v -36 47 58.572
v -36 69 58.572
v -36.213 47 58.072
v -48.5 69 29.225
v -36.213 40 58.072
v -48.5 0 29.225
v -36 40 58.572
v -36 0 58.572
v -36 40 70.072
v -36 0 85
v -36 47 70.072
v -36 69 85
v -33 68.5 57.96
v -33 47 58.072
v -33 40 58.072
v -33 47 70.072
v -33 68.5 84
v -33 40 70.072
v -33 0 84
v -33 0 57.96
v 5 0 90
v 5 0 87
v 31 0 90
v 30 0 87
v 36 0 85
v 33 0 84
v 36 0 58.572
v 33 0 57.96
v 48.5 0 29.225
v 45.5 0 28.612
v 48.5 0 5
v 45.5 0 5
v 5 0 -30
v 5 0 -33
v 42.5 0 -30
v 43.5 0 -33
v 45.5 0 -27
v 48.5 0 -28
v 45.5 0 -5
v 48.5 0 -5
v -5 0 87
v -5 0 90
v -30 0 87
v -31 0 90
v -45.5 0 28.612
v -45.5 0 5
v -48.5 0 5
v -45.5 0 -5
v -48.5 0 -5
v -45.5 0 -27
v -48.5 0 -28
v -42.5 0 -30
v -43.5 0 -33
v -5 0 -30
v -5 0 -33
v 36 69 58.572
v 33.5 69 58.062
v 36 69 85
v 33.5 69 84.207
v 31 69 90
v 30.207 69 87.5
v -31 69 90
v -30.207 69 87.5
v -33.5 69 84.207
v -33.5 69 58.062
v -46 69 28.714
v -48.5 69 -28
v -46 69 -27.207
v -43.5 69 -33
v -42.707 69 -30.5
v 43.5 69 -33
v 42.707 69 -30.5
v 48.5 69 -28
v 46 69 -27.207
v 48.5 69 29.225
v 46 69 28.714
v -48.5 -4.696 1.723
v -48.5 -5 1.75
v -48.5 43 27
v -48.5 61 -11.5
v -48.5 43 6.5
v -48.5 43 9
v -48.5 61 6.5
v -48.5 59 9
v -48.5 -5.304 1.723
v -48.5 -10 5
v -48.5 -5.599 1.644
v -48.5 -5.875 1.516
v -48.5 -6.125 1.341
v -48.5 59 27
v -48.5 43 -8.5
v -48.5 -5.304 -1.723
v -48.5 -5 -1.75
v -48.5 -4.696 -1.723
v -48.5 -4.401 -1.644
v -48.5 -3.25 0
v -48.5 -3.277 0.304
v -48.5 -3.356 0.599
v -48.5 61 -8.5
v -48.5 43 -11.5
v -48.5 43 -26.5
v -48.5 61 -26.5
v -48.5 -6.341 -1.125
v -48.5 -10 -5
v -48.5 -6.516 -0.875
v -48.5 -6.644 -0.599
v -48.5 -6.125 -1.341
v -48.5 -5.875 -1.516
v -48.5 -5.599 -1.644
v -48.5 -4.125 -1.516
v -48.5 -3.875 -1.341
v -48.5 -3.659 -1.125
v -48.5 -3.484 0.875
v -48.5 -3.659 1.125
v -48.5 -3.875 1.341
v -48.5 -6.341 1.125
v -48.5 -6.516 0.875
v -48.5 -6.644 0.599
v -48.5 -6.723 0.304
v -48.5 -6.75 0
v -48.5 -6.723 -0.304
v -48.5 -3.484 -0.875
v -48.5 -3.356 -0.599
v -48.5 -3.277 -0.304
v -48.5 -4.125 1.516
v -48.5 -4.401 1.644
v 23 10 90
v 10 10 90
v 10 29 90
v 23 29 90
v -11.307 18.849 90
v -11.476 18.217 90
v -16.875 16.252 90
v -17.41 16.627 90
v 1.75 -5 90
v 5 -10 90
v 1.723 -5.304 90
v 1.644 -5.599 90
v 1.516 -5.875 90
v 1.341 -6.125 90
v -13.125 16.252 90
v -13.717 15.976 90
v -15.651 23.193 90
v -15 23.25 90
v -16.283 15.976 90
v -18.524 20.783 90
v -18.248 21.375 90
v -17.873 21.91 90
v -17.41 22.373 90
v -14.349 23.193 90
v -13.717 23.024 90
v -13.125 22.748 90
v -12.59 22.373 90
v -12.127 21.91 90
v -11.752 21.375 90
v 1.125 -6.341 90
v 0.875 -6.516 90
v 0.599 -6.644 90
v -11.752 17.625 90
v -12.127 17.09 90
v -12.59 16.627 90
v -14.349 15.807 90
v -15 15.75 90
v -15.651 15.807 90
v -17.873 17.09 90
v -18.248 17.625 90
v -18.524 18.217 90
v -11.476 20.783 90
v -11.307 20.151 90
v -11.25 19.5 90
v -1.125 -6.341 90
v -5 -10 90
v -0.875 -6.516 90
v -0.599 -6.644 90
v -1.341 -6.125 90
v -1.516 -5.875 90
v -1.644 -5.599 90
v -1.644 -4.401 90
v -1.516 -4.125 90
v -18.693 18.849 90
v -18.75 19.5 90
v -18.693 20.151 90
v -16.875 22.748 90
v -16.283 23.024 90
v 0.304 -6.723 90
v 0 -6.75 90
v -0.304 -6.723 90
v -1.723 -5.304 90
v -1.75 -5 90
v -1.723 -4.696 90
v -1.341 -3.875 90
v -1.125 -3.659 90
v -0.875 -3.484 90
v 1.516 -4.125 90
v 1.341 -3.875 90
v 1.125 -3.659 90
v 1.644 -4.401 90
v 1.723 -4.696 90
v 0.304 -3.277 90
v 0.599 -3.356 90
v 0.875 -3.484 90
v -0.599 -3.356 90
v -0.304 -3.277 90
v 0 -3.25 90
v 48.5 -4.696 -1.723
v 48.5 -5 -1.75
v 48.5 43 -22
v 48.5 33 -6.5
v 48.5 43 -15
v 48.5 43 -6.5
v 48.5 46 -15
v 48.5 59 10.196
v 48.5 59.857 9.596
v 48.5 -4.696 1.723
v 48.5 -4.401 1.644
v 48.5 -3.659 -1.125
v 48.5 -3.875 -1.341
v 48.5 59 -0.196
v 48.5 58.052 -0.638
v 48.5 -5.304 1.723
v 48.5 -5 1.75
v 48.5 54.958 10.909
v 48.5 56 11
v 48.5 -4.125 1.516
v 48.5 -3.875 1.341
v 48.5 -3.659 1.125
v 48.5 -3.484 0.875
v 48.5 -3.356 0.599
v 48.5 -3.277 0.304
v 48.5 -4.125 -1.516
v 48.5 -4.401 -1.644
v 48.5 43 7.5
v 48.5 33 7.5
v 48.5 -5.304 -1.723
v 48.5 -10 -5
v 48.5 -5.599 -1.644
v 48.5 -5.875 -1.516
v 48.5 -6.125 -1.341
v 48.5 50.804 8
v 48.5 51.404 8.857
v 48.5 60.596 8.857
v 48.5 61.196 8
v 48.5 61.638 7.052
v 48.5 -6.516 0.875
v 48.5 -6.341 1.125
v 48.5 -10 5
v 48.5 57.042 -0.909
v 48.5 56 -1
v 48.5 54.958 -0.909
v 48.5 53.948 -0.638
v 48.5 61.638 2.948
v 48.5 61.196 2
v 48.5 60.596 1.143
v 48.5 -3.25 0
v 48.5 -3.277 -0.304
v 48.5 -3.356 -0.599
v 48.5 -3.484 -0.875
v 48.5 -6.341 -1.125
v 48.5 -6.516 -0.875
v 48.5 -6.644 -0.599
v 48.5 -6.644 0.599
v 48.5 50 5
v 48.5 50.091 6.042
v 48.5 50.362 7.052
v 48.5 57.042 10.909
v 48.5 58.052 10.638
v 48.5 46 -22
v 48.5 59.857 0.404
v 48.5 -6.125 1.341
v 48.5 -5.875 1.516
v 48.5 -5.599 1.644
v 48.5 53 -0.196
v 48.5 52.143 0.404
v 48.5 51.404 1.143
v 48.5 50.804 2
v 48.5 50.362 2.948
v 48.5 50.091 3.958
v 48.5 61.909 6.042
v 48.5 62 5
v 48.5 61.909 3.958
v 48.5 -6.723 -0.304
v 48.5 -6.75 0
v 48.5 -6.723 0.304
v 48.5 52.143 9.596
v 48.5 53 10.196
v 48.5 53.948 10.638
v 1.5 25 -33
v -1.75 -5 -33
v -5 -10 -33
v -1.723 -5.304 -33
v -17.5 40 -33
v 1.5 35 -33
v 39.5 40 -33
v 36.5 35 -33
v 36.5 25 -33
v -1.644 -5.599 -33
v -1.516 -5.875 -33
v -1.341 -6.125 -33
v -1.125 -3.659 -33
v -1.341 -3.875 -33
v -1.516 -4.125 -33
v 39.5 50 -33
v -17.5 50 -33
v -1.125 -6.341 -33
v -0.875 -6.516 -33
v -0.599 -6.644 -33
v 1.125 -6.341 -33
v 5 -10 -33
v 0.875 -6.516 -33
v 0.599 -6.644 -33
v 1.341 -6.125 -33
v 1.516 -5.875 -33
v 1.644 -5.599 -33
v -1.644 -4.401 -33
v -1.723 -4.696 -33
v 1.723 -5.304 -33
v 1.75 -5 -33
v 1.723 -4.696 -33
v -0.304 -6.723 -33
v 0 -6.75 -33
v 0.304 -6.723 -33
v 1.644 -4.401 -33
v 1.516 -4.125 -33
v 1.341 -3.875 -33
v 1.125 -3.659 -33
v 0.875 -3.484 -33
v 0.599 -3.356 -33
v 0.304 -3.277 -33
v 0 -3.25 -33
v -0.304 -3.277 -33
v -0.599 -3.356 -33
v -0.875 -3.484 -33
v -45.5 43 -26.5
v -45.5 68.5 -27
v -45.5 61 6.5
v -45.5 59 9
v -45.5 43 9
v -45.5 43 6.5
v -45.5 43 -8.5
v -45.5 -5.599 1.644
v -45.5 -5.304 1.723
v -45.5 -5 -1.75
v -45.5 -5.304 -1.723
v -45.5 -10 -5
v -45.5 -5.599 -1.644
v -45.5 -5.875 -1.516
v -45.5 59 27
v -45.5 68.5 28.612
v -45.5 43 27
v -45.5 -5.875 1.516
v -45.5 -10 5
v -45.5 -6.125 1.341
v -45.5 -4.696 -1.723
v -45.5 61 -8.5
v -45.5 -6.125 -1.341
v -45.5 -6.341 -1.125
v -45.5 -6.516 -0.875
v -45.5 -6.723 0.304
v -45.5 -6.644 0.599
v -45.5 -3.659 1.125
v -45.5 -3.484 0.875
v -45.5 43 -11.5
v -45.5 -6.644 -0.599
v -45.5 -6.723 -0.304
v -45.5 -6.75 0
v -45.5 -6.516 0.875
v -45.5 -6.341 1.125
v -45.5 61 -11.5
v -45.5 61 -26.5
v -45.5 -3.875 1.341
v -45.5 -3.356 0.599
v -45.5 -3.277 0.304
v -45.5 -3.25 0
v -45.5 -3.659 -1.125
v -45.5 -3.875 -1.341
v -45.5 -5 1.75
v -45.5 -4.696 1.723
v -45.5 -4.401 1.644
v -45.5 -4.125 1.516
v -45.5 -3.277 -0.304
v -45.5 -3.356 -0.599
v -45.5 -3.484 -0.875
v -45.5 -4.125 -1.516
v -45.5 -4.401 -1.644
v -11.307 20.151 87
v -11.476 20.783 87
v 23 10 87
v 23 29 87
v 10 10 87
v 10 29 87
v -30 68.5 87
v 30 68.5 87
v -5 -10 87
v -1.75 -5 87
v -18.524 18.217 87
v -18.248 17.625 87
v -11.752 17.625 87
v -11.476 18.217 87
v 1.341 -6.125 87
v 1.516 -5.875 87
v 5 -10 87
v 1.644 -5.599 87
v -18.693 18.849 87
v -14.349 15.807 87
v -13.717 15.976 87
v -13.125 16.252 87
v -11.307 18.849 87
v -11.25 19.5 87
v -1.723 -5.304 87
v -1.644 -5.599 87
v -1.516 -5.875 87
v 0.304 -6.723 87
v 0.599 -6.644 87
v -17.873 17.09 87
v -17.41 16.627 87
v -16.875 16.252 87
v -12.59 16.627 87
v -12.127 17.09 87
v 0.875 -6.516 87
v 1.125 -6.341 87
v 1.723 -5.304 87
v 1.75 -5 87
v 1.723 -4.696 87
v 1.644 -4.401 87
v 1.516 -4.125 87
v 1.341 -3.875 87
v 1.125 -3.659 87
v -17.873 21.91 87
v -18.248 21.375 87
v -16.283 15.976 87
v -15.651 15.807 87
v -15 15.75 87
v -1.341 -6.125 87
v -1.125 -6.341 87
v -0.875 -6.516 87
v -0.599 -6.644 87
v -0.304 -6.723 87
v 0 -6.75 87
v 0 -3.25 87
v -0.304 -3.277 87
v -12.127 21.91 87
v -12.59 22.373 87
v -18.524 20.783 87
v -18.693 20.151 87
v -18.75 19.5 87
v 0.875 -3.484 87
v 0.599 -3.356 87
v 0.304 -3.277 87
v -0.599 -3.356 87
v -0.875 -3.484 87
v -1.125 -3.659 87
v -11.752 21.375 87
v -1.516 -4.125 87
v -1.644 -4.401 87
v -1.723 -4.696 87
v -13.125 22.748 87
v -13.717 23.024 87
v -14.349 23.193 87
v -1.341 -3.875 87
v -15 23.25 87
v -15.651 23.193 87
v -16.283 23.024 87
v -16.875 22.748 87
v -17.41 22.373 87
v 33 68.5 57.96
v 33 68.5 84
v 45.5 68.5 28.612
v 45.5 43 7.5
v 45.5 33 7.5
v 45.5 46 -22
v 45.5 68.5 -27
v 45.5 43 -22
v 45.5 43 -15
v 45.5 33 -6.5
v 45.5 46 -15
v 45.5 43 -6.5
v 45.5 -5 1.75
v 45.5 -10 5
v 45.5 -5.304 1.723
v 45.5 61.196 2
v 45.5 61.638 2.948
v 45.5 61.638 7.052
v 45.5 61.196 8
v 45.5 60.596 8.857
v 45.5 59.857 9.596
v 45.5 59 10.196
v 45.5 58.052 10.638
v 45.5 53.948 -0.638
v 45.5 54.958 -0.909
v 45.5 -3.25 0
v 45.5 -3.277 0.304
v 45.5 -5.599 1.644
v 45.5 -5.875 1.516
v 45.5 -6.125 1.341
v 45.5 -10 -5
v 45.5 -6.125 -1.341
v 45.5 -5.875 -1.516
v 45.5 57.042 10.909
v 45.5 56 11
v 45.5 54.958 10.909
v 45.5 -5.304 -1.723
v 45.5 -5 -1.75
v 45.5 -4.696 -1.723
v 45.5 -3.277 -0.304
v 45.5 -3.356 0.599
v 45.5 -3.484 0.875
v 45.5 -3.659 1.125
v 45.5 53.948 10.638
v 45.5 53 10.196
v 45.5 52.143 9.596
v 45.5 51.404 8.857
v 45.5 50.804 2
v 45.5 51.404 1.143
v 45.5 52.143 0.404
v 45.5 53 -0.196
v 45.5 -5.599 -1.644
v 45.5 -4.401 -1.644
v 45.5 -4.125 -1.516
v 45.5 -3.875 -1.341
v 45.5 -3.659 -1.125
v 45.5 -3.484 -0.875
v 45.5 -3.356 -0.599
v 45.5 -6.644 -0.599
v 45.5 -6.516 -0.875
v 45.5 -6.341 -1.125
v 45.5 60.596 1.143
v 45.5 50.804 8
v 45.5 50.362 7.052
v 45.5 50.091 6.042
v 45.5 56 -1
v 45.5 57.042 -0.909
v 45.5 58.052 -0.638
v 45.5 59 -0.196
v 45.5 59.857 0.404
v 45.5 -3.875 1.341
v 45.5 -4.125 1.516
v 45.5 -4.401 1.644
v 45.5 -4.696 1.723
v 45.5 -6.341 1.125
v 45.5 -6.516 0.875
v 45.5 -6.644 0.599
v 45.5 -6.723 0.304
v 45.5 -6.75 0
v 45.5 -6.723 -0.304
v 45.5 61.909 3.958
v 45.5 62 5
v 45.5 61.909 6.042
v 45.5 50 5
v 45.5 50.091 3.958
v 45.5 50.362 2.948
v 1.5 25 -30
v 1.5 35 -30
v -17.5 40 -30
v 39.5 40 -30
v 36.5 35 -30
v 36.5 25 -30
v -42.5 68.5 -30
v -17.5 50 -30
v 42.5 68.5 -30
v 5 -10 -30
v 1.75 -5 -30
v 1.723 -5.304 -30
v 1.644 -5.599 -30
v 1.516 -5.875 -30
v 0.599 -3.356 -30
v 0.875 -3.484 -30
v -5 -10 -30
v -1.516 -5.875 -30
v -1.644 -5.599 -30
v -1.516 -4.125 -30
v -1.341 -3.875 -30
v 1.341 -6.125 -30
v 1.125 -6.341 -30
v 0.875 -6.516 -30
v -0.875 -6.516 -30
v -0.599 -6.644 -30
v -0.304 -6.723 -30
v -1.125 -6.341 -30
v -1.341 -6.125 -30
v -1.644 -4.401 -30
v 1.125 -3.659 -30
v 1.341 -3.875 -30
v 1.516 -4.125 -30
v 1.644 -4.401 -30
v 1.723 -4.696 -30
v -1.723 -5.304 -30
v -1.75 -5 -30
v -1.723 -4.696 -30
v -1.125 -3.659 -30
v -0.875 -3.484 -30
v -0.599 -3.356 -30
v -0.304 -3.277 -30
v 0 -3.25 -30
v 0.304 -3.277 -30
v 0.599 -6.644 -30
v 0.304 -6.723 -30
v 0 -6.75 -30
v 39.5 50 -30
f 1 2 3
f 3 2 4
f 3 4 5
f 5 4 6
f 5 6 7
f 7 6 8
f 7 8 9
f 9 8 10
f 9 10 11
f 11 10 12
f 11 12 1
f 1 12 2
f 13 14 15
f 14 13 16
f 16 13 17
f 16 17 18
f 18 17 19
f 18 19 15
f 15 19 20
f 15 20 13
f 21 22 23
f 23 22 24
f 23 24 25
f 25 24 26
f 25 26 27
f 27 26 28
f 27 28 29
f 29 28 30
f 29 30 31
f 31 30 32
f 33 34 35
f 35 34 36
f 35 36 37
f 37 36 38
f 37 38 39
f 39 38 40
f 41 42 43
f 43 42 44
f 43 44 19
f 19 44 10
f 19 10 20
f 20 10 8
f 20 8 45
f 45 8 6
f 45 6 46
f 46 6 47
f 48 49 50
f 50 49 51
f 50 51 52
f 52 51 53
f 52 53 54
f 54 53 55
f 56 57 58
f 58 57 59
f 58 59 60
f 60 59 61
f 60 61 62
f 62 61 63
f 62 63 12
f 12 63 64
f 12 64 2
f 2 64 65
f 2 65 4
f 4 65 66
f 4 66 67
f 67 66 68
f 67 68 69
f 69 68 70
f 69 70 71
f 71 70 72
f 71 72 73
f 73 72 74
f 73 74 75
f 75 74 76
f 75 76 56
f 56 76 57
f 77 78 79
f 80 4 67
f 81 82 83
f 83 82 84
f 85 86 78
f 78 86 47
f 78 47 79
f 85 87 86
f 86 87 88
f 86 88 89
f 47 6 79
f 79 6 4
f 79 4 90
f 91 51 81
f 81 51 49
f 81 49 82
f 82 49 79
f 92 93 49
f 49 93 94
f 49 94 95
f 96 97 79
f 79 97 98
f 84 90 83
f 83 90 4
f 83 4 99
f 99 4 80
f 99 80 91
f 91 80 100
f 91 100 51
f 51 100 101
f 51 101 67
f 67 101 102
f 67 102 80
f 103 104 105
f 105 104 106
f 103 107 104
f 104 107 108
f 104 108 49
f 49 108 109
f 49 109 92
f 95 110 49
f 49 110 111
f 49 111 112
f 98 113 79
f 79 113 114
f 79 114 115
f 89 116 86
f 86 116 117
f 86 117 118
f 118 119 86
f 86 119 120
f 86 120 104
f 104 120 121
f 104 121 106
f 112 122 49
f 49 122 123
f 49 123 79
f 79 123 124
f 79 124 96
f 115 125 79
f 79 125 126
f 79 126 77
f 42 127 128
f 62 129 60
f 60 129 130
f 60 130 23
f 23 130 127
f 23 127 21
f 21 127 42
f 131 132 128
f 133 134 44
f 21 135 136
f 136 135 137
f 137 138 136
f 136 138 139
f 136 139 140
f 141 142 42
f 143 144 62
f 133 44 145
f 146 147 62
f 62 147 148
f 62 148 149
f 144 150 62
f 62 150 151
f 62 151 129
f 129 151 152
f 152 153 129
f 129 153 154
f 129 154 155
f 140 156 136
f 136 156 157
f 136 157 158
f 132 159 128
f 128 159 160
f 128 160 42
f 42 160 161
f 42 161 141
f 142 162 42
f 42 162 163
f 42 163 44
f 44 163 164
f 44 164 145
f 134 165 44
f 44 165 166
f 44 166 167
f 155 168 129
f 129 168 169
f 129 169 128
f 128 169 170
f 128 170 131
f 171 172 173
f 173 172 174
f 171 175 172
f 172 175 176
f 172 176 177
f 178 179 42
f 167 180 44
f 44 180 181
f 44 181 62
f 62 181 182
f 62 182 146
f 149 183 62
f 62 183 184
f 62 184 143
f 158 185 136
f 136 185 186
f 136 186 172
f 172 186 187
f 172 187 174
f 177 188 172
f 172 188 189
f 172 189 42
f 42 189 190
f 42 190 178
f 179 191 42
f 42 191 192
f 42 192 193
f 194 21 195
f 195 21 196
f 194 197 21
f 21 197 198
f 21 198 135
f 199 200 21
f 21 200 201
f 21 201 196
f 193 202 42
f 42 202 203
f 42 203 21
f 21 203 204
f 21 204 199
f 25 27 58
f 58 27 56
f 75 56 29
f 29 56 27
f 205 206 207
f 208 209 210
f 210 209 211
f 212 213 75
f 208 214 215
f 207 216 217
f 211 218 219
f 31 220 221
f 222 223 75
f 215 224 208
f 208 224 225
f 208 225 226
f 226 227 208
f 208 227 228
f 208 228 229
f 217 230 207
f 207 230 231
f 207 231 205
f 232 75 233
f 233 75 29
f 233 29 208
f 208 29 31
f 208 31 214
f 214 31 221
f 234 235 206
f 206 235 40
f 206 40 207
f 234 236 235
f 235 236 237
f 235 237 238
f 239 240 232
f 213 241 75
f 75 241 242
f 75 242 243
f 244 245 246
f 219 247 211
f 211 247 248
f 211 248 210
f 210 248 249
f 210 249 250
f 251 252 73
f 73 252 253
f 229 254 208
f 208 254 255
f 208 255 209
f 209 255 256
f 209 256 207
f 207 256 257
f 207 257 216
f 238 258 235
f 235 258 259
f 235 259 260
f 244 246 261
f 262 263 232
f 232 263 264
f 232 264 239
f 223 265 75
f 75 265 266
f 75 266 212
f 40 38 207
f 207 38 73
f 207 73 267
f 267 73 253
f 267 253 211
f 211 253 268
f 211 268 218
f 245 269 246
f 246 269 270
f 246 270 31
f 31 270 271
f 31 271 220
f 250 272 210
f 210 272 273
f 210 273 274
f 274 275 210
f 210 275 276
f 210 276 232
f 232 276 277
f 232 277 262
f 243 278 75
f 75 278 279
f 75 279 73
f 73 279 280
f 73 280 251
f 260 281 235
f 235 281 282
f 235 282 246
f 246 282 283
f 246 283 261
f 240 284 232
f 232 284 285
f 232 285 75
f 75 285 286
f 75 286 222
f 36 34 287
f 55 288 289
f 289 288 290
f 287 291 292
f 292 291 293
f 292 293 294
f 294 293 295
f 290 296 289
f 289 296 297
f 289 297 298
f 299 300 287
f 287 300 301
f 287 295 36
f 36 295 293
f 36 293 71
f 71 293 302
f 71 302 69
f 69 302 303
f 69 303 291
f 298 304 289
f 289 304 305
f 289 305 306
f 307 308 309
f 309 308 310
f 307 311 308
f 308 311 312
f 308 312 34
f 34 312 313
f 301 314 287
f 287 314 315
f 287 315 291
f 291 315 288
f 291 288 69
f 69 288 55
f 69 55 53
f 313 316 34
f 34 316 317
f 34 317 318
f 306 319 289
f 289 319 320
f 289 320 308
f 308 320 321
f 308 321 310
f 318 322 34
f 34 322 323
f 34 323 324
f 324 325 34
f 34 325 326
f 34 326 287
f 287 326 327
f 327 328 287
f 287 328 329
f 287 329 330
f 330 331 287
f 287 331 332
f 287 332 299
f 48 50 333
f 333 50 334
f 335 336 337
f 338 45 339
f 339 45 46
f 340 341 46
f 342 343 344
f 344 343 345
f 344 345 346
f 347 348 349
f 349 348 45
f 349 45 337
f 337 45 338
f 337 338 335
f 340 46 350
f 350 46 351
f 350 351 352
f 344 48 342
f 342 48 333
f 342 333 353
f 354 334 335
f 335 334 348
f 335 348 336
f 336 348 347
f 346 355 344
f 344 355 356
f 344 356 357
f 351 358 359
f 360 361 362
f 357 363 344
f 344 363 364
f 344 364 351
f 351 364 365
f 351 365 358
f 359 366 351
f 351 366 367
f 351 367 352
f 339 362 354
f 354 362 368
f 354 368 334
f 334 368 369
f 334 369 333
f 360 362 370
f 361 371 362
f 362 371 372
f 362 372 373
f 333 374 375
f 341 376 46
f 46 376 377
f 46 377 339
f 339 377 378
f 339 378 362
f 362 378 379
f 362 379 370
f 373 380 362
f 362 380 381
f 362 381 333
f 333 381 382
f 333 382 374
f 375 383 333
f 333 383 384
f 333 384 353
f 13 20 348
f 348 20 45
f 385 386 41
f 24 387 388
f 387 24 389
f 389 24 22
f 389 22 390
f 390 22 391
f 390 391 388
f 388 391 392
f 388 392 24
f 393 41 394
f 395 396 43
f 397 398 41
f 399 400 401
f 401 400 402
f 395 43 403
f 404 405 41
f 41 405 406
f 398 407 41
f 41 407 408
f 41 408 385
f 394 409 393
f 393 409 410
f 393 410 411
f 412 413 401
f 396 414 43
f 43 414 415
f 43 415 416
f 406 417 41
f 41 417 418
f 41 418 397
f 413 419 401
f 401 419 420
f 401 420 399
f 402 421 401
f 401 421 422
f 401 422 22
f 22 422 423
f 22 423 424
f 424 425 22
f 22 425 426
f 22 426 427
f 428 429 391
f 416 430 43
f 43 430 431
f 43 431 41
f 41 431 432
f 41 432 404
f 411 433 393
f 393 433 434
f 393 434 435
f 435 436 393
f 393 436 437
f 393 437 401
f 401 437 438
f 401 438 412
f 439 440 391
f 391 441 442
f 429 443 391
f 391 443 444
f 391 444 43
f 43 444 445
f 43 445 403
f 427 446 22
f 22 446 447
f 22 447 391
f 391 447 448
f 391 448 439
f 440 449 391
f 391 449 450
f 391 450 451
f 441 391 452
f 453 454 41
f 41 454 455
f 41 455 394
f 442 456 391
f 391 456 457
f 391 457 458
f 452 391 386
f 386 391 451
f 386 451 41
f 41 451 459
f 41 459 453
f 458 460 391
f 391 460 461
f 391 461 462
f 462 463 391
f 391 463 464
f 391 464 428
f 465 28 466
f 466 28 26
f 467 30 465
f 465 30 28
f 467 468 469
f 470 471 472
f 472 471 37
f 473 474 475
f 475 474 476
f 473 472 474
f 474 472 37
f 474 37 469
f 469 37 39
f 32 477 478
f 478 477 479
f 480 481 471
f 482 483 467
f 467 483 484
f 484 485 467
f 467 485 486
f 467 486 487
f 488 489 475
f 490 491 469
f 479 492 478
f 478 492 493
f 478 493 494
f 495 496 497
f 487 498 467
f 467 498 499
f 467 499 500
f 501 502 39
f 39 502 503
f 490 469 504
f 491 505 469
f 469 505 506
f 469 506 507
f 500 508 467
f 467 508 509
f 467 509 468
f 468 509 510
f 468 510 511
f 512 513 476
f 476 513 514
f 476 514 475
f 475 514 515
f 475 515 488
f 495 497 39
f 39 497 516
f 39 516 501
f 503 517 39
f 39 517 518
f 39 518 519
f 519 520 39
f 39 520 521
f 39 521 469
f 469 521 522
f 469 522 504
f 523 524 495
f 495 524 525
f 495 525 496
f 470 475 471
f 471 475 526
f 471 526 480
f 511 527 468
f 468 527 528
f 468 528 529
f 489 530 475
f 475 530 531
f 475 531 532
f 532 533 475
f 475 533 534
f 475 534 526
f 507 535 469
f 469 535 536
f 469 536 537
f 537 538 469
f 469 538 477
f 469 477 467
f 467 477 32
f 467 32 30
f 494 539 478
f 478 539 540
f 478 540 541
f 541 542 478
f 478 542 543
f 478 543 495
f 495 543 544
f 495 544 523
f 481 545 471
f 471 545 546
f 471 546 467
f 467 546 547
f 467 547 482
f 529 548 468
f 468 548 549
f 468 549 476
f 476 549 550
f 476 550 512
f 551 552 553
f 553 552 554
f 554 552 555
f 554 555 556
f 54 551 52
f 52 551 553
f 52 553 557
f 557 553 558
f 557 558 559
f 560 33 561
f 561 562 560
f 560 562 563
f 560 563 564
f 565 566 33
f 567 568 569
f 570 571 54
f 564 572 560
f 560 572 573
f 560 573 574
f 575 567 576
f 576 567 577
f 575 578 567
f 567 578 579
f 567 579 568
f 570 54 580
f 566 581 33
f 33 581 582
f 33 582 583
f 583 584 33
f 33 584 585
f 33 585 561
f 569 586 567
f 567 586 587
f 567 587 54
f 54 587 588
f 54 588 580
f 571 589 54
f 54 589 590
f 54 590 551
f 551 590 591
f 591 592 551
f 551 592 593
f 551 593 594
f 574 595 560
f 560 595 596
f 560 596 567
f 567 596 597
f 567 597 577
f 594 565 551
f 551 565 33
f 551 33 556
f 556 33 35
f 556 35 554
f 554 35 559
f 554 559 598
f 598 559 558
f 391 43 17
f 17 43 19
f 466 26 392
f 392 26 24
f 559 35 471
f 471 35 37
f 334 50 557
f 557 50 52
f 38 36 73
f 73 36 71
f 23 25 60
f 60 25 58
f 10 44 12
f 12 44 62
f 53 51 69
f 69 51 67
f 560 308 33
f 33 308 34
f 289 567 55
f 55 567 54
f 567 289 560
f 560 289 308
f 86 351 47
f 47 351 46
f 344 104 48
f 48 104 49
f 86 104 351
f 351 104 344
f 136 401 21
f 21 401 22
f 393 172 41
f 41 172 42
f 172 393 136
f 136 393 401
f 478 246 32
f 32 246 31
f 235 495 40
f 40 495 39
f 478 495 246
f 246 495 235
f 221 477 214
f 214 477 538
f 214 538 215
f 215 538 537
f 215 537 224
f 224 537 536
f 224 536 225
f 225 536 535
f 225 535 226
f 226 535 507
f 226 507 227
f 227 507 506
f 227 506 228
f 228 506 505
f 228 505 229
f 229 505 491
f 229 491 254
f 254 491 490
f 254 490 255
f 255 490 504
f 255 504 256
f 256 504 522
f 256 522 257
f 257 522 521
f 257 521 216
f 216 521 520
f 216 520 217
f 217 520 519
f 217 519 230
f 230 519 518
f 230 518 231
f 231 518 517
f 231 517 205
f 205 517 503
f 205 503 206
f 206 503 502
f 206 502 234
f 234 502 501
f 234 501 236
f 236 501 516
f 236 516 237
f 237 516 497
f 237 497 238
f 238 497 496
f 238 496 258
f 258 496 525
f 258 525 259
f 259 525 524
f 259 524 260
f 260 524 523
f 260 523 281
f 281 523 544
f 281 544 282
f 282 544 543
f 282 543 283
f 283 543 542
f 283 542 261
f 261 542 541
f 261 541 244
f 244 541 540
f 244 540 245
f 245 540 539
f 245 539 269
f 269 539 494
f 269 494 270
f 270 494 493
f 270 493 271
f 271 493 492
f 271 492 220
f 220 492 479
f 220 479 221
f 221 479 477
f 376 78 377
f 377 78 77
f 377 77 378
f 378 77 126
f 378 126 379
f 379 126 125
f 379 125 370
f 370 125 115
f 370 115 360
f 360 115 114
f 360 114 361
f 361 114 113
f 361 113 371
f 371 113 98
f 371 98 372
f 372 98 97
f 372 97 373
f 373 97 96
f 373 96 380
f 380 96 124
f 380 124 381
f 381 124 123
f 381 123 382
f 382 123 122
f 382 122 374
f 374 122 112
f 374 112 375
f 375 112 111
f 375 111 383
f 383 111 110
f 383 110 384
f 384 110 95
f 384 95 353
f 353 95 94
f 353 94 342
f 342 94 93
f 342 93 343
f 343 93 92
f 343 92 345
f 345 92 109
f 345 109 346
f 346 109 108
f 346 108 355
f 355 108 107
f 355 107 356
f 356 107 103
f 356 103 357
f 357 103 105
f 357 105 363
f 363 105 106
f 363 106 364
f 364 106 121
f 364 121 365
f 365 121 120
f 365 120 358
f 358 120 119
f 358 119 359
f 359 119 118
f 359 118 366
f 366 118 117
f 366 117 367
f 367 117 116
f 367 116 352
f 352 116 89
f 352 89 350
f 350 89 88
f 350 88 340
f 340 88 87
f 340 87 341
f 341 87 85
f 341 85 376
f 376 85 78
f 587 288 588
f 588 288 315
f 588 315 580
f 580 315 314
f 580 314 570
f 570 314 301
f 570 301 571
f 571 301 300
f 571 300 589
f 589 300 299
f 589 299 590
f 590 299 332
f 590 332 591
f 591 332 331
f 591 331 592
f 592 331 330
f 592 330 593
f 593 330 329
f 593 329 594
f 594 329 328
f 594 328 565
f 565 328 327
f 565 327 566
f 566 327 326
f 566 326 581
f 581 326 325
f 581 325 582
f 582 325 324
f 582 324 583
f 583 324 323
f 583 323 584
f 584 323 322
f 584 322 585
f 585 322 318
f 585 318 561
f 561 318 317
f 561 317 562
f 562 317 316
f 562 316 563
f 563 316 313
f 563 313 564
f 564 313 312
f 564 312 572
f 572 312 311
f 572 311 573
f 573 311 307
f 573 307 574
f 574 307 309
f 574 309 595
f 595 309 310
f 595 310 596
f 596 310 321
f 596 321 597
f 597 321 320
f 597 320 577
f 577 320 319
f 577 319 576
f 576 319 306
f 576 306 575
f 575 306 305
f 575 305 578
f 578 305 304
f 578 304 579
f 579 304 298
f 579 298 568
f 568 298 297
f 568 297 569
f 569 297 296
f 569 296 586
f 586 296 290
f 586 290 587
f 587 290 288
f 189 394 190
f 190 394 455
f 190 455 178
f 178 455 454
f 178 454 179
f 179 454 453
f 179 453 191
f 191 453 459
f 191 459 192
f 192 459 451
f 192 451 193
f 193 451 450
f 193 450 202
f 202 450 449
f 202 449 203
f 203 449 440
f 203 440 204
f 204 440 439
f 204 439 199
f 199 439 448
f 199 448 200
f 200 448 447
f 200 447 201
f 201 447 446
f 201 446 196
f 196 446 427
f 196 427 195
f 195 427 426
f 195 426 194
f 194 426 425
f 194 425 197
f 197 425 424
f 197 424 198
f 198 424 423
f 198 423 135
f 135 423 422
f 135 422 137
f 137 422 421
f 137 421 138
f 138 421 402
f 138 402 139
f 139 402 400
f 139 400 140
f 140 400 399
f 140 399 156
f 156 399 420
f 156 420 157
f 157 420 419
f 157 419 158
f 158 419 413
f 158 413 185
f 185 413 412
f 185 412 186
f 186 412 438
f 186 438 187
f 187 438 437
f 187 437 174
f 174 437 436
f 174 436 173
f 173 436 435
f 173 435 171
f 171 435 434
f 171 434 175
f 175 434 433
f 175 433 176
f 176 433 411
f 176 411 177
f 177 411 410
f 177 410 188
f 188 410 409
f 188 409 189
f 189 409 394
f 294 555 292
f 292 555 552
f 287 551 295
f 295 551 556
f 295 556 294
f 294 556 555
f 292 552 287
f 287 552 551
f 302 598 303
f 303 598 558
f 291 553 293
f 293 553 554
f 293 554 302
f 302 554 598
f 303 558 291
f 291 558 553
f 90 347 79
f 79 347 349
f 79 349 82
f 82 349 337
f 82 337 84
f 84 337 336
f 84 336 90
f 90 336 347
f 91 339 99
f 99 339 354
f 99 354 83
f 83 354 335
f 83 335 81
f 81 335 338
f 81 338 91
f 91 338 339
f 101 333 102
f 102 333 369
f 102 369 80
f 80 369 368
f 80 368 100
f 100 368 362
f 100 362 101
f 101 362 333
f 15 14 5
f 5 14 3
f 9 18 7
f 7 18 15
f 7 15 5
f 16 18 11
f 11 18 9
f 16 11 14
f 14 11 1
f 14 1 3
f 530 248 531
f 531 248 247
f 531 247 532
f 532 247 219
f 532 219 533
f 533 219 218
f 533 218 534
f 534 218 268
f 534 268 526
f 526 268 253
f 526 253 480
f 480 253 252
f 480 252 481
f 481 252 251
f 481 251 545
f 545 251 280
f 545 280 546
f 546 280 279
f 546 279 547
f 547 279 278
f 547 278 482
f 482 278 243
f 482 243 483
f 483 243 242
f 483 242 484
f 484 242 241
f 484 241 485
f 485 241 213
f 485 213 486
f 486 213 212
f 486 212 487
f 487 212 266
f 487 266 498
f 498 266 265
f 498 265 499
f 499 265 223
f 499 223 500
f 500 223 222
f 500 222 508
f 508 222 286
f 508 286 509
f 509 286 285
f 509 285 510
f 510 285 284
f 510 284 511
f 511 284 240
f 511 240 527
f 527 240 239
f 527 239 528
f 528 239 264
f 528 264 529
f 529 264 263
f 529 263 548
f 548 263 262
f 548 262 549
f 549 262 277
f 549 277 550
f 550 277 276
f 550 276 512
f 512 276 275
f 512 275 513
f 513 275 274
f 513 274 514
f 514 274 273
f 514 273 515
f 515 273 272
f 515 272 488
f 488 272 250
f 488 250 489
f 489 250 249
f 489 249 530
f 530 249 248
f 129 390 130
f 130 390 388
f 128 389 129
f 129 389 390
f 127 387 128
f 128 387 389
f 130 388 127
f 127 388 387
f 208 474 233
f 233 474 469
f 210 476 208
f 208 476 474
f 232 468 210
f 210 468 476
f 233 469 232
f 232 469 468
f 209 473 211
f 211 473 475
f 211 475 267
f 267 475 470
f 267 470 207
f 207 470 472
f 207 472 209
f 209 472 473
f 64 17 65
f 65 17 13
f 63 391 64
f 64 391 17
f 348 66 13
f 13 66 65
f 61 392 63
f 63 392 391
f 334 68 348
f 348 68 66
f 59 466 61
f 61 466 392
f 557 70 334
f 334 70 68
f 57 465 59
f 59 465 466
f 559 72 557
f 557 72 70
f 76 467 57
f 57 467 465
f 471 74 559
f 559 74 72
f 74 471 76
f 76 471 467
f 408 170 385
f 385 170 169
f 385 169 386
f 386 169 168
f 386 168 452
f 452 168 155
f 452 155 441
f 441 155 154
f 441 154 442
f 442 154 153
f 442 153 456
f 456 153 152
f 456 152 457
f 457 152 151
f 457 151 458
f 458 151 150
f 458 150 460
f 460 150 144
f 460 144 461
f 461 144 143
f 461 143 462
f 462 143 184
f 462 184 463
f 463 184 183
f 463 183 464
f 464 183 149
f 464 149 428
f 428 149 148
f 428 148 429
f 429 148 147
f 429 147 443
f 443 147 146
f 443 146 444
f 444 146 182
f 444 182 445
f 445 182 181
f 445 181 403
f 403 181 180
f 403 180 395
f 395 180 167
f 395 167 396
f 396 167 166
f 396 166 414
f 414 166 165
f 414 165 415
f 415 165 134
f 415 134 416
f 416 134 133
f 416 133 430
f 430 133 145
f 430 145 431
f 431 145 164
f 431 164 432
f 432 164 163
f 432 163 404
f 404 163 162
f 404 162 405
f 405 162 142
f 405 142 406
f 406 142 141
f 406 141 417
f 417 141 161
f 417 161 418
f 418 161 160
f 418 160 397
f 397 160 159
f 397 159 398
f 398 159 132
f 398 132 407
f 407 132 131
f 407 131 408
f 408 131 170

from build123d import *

# Parameters (mm, degrees)
BOSS_EXTRUDE2_DEPTH            = 69
CHAMFER1_SIZE                  = 3
CHAMFER2_SIZE                  = 5
SKETCH5_W                      = 10
SKETCH5_H                      = 3
SKETCH5_W_2                    = 3
SKETCH5_H_2                    = 10
BOSS_EXTRUDE3_DEPTH            = 10
SKETCH6_R                      = 1.75
CUT_EXTRUDE1_DEPTH             = 150.231363996
SKETCH7_R                      = 1.75
CUT_EXTRUDE2_DEPTH             = 150.13835858
CUT_EXTRUDE3_REACH             = 151.138
SKETCH8_W                      = 57
SKETCH8_H                      = 10
SKETCH8_W_2                    = 35
CUT_EXTRUDE4_REACH             = 151.231
SKETCH10_W                     = 15
SKETCH10_H                     = 18
SKETCH10_W_2                   = 18
SKETCH10_H_2                   = 16
CUT_EXTRUDE5_REACH             = 143.426
SKETCH12_W                     = 12
SKETCH12_H                     = 7
CUT_EXTRUDE5_DIRECTION_2_DEPTH = 142.425775586
CUT_EXTRUDE6_REACH             = 151.231
SKETCH14_R                     = 6
CUT_EXTRUDE7_REACH             = 151.138
SKETCH15_W                     = 13
SKETCH15_H                     = 19
CUT_EXTRUDE8_REACH             = 151.231
SKETCH16_W                     = 14
SKETCH16_H                     = 10
CUT_EXTRUDE9_REACH             = 151.231
SKETCH18_W                     = 7
SKETCH18_H                     = 3
CHAMFER3_SIZE                  = 0.5
CUT_EXTRUDE10_REACH            = 151.138
SKETCH19_R                     = 3.75


with BuildPart() as part:
    # Sketch4 → Boss-Extrude2 (new body)
    with BuildSketch(Plane(origin=(0, 0, 0), x_dir=(1, 0, 0), z_dir=(0, 1, 0))):
        Polygon((-48.5, 33), (48.5, 33), (48.5, -29.22455366), (36, -58.572379747), (36, -90), (-36, -90), (-36, -58.572379747), (-48.5, -29.22455366), align=None)
        Polygon((-45.5, 30), (45.5, 30), (45.5, -28.61227683), (33, -57.960102917), (33, -87), (-33, -87), (-33, -57.960102917), (-45.5, -28.61227683), align=None, mode=Mode.SUBTRACT)
    extrude(amount=BOSS_EXTRUDE2_DEPTH)

    # Chamfer1
    chamfer1_edges = [part.edges().sort_by_distance(p)[0] for p in [
        (-45.5, 34.5, -30),
        (-33, 34.5, 87),
        (33, 34.5, 87),
        (45.5, 34.5, -30),
    ]]
    chamfer(chamfer1_edges, length=CHAMFER1_SIZE)

    # Chamfer2
    chamfer2_edges = [part.edges().sort_by_distance(p)[0] for p in [
        (-48.5, 34.5, -33),
        (48.5, 34.5, -33),
        (36, 34.5, 90),
        (-36, 34.5, 90),
    ]]
    chamfer(chamfer2_edges, length=CHAMFER2_SIZE)

    # Sketch5 → Boss-Extrude3 (add)
    with BuildSketch(Plane(origin=(0, 0, 0), x_dir=(1, 0, 0), z_dir=(0, 1, 0))):
        with Locations((0, 31.5)):
            Rectangle(SKETCH5_W, SKETCH5_H)
        with Locations((-47, 0)):
            Rectangle(SKETCH5_W_2, SKETCH5_H_2)
        with Locations((0, -88.5)):
            Rectangle(SKETCH5_W, SKETCH5_H)
        with Locations((47, 0)):
            Rectangle(SKETCH5_W_2, SKETCH5_H_2)
    extrude(amount=-BOSS_EXTRUDE3_DEPTH)

    # Sketch6 → Cut-Extrude1 (cut, through all)
    with BuildSketch(Plane.ZY.offset(48.5)):
        with Locations((0, -5)):
            Circle(SKETCH6_R)
    extrude(amount=-CUT_EXTRUDE1_DEPTH, mode=Mode.SUBTRACT)

    # Sketch7 → Cut-Extrude2 (cut, through all)
    with BuildSketch(Plane(origin=(0, 0, -33), x_dir=(-1, 0, 0), z_dir=(0, 0, -1))):
        with Locations((0, -5)):
            Circle(SKETCH7_R)
    extrude(amount=-CUT_EXTRUDE2_DEPTH, mode=Mode.SUBTRACT)

    # Sketch8 → Cut-Extrude3 (cut, up to next)
    with BuildSketch(Plane(origin=(0, 0, -33), x_dir=(-1, 0, 0), z_dir=(0, 0, -1)), mode=Mode.PRIVATE) as cut_extrude3_sk1:
        with Locations((-11, 45)):
            Rectangle(SKETCH8_W, SKETCH8_H)
    cut_extrude3_tool1 = extrude(cut_extrude3_sk1.sketch, amount=-CUT_EXTRUDE3_REACH, mode=Mode.PRIVATE) & part.part
    # Sketch8 → Cut-Extrude3 (cut, up to next)
    with BuildSketch(Plane(origin=(0, 0, -33), x_dir=(-1, 0, 0), z_dir=(0, 0, -1)), mode=Mode.PRIVATE) as cut_extrude3_sk2:
        with Locations((-19, 30)):
            Rectangle(SKETCH8_W_2, SKETCH8_H)
    cut_extrude3_tool2 = extrude(cut_extrude3_sk2.sketch, amount=-CUT_EXTRUDE3_REACH, mode=Mode.PRIVATE) & part.part
    add(cut_extrude3_tool1.solids().sort_by_distance((11, 45, -33))[0], mode=Mode.SUBTRACT)
    add(cut_extrude3_tool2.solids().sort_by_distance((19, 30, -33))[0], mode=Mode.SUBTRACT)

    # Sketch10 → Cut-Extrude4 (cut, up to next)
    with BuildSketch(Plane.ZY.offset(48.5), mode=Mode.PRIVATE) as cut_extrude4_sk1:
        with Locations((-19, 52)):
            Rectangle(SKETCH10_W, SKETCH10_H)
    cut_extrude4_tool1 = extrude(cut_extrude4_sk1.sketch, amount=-CUT_EXTRUDE4_REACH, mode=Mode.PRIVATE) & part.part
    # Sketch10 → Cut-Extrude4 (cut, up to next)
    with BuildSketch(Plane.ZY.offset(48.5), mode=Mode.PRIVATE) as cut_extrude4_sk2:
        with Locations((-1, 52)):
            Rectangle(SKETCH10_W, SKETCH10_H)
    cut_extrude4_tool2 = extrude(cut_extrude4_sk2.sketch, amount=-CUT_EXTRUDE4_REACH, mode=Mode.PRIVATE) & part.part
    # Sketch10 → Cut-Extrude4 (cut, up to next)
    with BuildSketch(Plane.ZY.offset(48.5), mode=Mode.PRIVATE) as cut_extrude4_sk3:
        with Locations((18, 51)):
            Rectangle(SKETCH10_W_2, SKETCH10_H_2)
    cut_extrude4_tool3 = extrude(cut_extrude4_sk3.sketch, amount=-CUT_EXTRUDE4_REACH, mode=Mode.PRIVATE) & part.part
    add(cut_extrude4_tool1.solids().sort_by_distance((-48.5, 52, -19))[0], mode=Mode.SUBTRACT)
    add(cut_extrude4_tool2.solids().sort_by_distance((-48.5, 52, -1))[0], mode=Mode.SUBTRACT)
    add(cut_extrude4_tool3.solids().sort_by_distance((-48.5, 51, 18))[0], mode=Mode.SUBTRACT)

    # Sketch12 → Cut-Extrude5 (cut, up to next)
    with BuildSketch(Plane.ZY.offset(36), mode=Mode.PRIVATE) as cut_extrude5_sk1:
        with Locations((64.072379747, 43.5)):
            Rectangle(SKETCH12_W, SKETCH12_H)
    cut_extrude5_tool1 = extrude(cut_extrude5_sk1.sketch, amount=-CUT_EXTRUDE5_REACH, mode=Mode.PRIVATE) & part.part
    add(cut_extrude5_tool1.solids().sort_by_distance((-36, 43.5, 64.07238))[0], mode=Mode.SUBTRACT)

    # Sketch12 → Cut-Extrude5 direction 2 (cut)
    with BuildSketch(Plane.ZY.offset(36)):
        with Locations((64.072379747, 43.5)):
            Rectangle(SKETCH12_W, SKETCH12_H)
    extrude(amount=CUT_EXTRUDE5_DIRECTION_2_DEPTH, mode=Mode.SUBTRACT)

    # Sketch14 → Cut-Extrude6 (cut, up to next)
    with BuildSketch(Plane(origin=(48.5, 0, 0), x_dir=(0, 0, -1), z_dir=(1, 0, 0)), mode=Mode.PRIVATE) as cut_extrude6_sk1:
        with Locations((-5, 56)):
            Circle(SKETCH14_R)
    cut_extrude6_tool1 = extrude(cut_extrude6_sk1.sketch, amount=-CUT_EXTRUDE6_REACH, mode=Mode.PRIVATE) & part.part
    add(cut_extrude6_tool1.solids().sort_by_distance((48.5, 56, 5))[0], mode=Mode.SUBTRACT)

    # Sketch15 → Cut-Extrude7 (cut, up to next)
    with BuildSketch(Plane.XY.offset(90), mode=Mode.PRIVATE) as cut_extrude7_sk1:
        with Locations((16.5, 19.5)):
            Rectangle(SKETCH15_W, SKETCH15_H)
    cut_extrude7_tool1 = extrude(cut_extrude7_sk1.sketch, amount=-CUT_EXTRUDE7_REACH, mode=Mode.PRIVATE) & part.part
    add(cut_extrude7_tool1.solids().sort_by_distance((16.5, 19.5, 90))[0], mode=Mode.SUBTRACT)

    # Sketch16 → Cut-Extrude8 (cut, up to next)
    with BuildSketch(Plane(origin=(48.5, 0, 0), x_dir=(0, 0, -1), z_dir=(1, 0, 0)), mode=Mode.PRIVATE) as cut_extrude8_sk1:
        with Locations((-0.5, 38)):
            Rectangle(SKETCH16_W, SKETCH16_H)
    cut_extrude8_tool1 = extrude(cut_extrude8_sk1.sketch, amount=-CUT_EXTRUDE8_REACH, mode=Mode.PRIVATE) & part.part
    add(cut_extrude8_tool1.solids().sort_by_distance((48.5, 38, 0.5))[0], mode=Mode.SUBTRACT)

    # Sketch18 → Cut-Extrude9 (cut, up to next)
    with BuildSketch(Plane(origin=(48.5, 0, 0), x_dir=(0, 0, -1), z_dir=(1, 0, 0)), mode=Mode.PRIVATE) as cut_extrude9_sk1:
        with Locations((18.5, 44.5)):
            Rectangle(SKETCH18_W, SKETCH18_H)
    cut_extrude9_tool1 = extrude(cut_extrude9_sk1.sketch, amount=-CUT_EXTRUDE9_REACH, mode=Mode.PRIVATE) & part.part
    add(cut_extrude9_tool1.solids().sort_by_distance((48.5, 44.5, -18.5))[0], mode=Mode.SUBTRACT)

    # Chamfer3
    chamfer3_edges = [part.edges().sort_by_distance(p)[0] for p in [
        (-39.25, 69, 43.286189873),
        (-33, 69, 70.980051458),
        (39.25, 69, 43.286189873),
        (45.5, 69, 0.806138415),
        (0, 69, 87),
        (33, 69, 70.980051458),
        (0, 69, -30),
        (-45.5, 69, 0.806138415),
        (-31.5, 69, 85.5),
        (31.5, 69, 85.5),
        (44, 69, -28.5),
        (-44, 69, -28.5),
    ]]
    chamfer(chamfer3_edges, length=CHAMFER3_SIZE)

    # Sketch19 → Cut-Extrude10 (cut, up to next)
    with BuildSketch(Plane.XY.offset(90), mode=Mode.PRIVATE) as cut_extrude10_sk1:
        with Locations((-15, 19.5)):
            Circle(SKETCH19_R)
    cut_extrude10_tool1 = extrude(cut_extrude10_sk1.sketch, amount=-CUT_EXTRUDE10_REACH, mode=Mode.PRIVATE) & part.part
    add(cut_extrude10_tool1.solids().sort_by_distance((-15, 19.5, 90))[0], mode=Mode.SUBTRACT)


solid = part.part
